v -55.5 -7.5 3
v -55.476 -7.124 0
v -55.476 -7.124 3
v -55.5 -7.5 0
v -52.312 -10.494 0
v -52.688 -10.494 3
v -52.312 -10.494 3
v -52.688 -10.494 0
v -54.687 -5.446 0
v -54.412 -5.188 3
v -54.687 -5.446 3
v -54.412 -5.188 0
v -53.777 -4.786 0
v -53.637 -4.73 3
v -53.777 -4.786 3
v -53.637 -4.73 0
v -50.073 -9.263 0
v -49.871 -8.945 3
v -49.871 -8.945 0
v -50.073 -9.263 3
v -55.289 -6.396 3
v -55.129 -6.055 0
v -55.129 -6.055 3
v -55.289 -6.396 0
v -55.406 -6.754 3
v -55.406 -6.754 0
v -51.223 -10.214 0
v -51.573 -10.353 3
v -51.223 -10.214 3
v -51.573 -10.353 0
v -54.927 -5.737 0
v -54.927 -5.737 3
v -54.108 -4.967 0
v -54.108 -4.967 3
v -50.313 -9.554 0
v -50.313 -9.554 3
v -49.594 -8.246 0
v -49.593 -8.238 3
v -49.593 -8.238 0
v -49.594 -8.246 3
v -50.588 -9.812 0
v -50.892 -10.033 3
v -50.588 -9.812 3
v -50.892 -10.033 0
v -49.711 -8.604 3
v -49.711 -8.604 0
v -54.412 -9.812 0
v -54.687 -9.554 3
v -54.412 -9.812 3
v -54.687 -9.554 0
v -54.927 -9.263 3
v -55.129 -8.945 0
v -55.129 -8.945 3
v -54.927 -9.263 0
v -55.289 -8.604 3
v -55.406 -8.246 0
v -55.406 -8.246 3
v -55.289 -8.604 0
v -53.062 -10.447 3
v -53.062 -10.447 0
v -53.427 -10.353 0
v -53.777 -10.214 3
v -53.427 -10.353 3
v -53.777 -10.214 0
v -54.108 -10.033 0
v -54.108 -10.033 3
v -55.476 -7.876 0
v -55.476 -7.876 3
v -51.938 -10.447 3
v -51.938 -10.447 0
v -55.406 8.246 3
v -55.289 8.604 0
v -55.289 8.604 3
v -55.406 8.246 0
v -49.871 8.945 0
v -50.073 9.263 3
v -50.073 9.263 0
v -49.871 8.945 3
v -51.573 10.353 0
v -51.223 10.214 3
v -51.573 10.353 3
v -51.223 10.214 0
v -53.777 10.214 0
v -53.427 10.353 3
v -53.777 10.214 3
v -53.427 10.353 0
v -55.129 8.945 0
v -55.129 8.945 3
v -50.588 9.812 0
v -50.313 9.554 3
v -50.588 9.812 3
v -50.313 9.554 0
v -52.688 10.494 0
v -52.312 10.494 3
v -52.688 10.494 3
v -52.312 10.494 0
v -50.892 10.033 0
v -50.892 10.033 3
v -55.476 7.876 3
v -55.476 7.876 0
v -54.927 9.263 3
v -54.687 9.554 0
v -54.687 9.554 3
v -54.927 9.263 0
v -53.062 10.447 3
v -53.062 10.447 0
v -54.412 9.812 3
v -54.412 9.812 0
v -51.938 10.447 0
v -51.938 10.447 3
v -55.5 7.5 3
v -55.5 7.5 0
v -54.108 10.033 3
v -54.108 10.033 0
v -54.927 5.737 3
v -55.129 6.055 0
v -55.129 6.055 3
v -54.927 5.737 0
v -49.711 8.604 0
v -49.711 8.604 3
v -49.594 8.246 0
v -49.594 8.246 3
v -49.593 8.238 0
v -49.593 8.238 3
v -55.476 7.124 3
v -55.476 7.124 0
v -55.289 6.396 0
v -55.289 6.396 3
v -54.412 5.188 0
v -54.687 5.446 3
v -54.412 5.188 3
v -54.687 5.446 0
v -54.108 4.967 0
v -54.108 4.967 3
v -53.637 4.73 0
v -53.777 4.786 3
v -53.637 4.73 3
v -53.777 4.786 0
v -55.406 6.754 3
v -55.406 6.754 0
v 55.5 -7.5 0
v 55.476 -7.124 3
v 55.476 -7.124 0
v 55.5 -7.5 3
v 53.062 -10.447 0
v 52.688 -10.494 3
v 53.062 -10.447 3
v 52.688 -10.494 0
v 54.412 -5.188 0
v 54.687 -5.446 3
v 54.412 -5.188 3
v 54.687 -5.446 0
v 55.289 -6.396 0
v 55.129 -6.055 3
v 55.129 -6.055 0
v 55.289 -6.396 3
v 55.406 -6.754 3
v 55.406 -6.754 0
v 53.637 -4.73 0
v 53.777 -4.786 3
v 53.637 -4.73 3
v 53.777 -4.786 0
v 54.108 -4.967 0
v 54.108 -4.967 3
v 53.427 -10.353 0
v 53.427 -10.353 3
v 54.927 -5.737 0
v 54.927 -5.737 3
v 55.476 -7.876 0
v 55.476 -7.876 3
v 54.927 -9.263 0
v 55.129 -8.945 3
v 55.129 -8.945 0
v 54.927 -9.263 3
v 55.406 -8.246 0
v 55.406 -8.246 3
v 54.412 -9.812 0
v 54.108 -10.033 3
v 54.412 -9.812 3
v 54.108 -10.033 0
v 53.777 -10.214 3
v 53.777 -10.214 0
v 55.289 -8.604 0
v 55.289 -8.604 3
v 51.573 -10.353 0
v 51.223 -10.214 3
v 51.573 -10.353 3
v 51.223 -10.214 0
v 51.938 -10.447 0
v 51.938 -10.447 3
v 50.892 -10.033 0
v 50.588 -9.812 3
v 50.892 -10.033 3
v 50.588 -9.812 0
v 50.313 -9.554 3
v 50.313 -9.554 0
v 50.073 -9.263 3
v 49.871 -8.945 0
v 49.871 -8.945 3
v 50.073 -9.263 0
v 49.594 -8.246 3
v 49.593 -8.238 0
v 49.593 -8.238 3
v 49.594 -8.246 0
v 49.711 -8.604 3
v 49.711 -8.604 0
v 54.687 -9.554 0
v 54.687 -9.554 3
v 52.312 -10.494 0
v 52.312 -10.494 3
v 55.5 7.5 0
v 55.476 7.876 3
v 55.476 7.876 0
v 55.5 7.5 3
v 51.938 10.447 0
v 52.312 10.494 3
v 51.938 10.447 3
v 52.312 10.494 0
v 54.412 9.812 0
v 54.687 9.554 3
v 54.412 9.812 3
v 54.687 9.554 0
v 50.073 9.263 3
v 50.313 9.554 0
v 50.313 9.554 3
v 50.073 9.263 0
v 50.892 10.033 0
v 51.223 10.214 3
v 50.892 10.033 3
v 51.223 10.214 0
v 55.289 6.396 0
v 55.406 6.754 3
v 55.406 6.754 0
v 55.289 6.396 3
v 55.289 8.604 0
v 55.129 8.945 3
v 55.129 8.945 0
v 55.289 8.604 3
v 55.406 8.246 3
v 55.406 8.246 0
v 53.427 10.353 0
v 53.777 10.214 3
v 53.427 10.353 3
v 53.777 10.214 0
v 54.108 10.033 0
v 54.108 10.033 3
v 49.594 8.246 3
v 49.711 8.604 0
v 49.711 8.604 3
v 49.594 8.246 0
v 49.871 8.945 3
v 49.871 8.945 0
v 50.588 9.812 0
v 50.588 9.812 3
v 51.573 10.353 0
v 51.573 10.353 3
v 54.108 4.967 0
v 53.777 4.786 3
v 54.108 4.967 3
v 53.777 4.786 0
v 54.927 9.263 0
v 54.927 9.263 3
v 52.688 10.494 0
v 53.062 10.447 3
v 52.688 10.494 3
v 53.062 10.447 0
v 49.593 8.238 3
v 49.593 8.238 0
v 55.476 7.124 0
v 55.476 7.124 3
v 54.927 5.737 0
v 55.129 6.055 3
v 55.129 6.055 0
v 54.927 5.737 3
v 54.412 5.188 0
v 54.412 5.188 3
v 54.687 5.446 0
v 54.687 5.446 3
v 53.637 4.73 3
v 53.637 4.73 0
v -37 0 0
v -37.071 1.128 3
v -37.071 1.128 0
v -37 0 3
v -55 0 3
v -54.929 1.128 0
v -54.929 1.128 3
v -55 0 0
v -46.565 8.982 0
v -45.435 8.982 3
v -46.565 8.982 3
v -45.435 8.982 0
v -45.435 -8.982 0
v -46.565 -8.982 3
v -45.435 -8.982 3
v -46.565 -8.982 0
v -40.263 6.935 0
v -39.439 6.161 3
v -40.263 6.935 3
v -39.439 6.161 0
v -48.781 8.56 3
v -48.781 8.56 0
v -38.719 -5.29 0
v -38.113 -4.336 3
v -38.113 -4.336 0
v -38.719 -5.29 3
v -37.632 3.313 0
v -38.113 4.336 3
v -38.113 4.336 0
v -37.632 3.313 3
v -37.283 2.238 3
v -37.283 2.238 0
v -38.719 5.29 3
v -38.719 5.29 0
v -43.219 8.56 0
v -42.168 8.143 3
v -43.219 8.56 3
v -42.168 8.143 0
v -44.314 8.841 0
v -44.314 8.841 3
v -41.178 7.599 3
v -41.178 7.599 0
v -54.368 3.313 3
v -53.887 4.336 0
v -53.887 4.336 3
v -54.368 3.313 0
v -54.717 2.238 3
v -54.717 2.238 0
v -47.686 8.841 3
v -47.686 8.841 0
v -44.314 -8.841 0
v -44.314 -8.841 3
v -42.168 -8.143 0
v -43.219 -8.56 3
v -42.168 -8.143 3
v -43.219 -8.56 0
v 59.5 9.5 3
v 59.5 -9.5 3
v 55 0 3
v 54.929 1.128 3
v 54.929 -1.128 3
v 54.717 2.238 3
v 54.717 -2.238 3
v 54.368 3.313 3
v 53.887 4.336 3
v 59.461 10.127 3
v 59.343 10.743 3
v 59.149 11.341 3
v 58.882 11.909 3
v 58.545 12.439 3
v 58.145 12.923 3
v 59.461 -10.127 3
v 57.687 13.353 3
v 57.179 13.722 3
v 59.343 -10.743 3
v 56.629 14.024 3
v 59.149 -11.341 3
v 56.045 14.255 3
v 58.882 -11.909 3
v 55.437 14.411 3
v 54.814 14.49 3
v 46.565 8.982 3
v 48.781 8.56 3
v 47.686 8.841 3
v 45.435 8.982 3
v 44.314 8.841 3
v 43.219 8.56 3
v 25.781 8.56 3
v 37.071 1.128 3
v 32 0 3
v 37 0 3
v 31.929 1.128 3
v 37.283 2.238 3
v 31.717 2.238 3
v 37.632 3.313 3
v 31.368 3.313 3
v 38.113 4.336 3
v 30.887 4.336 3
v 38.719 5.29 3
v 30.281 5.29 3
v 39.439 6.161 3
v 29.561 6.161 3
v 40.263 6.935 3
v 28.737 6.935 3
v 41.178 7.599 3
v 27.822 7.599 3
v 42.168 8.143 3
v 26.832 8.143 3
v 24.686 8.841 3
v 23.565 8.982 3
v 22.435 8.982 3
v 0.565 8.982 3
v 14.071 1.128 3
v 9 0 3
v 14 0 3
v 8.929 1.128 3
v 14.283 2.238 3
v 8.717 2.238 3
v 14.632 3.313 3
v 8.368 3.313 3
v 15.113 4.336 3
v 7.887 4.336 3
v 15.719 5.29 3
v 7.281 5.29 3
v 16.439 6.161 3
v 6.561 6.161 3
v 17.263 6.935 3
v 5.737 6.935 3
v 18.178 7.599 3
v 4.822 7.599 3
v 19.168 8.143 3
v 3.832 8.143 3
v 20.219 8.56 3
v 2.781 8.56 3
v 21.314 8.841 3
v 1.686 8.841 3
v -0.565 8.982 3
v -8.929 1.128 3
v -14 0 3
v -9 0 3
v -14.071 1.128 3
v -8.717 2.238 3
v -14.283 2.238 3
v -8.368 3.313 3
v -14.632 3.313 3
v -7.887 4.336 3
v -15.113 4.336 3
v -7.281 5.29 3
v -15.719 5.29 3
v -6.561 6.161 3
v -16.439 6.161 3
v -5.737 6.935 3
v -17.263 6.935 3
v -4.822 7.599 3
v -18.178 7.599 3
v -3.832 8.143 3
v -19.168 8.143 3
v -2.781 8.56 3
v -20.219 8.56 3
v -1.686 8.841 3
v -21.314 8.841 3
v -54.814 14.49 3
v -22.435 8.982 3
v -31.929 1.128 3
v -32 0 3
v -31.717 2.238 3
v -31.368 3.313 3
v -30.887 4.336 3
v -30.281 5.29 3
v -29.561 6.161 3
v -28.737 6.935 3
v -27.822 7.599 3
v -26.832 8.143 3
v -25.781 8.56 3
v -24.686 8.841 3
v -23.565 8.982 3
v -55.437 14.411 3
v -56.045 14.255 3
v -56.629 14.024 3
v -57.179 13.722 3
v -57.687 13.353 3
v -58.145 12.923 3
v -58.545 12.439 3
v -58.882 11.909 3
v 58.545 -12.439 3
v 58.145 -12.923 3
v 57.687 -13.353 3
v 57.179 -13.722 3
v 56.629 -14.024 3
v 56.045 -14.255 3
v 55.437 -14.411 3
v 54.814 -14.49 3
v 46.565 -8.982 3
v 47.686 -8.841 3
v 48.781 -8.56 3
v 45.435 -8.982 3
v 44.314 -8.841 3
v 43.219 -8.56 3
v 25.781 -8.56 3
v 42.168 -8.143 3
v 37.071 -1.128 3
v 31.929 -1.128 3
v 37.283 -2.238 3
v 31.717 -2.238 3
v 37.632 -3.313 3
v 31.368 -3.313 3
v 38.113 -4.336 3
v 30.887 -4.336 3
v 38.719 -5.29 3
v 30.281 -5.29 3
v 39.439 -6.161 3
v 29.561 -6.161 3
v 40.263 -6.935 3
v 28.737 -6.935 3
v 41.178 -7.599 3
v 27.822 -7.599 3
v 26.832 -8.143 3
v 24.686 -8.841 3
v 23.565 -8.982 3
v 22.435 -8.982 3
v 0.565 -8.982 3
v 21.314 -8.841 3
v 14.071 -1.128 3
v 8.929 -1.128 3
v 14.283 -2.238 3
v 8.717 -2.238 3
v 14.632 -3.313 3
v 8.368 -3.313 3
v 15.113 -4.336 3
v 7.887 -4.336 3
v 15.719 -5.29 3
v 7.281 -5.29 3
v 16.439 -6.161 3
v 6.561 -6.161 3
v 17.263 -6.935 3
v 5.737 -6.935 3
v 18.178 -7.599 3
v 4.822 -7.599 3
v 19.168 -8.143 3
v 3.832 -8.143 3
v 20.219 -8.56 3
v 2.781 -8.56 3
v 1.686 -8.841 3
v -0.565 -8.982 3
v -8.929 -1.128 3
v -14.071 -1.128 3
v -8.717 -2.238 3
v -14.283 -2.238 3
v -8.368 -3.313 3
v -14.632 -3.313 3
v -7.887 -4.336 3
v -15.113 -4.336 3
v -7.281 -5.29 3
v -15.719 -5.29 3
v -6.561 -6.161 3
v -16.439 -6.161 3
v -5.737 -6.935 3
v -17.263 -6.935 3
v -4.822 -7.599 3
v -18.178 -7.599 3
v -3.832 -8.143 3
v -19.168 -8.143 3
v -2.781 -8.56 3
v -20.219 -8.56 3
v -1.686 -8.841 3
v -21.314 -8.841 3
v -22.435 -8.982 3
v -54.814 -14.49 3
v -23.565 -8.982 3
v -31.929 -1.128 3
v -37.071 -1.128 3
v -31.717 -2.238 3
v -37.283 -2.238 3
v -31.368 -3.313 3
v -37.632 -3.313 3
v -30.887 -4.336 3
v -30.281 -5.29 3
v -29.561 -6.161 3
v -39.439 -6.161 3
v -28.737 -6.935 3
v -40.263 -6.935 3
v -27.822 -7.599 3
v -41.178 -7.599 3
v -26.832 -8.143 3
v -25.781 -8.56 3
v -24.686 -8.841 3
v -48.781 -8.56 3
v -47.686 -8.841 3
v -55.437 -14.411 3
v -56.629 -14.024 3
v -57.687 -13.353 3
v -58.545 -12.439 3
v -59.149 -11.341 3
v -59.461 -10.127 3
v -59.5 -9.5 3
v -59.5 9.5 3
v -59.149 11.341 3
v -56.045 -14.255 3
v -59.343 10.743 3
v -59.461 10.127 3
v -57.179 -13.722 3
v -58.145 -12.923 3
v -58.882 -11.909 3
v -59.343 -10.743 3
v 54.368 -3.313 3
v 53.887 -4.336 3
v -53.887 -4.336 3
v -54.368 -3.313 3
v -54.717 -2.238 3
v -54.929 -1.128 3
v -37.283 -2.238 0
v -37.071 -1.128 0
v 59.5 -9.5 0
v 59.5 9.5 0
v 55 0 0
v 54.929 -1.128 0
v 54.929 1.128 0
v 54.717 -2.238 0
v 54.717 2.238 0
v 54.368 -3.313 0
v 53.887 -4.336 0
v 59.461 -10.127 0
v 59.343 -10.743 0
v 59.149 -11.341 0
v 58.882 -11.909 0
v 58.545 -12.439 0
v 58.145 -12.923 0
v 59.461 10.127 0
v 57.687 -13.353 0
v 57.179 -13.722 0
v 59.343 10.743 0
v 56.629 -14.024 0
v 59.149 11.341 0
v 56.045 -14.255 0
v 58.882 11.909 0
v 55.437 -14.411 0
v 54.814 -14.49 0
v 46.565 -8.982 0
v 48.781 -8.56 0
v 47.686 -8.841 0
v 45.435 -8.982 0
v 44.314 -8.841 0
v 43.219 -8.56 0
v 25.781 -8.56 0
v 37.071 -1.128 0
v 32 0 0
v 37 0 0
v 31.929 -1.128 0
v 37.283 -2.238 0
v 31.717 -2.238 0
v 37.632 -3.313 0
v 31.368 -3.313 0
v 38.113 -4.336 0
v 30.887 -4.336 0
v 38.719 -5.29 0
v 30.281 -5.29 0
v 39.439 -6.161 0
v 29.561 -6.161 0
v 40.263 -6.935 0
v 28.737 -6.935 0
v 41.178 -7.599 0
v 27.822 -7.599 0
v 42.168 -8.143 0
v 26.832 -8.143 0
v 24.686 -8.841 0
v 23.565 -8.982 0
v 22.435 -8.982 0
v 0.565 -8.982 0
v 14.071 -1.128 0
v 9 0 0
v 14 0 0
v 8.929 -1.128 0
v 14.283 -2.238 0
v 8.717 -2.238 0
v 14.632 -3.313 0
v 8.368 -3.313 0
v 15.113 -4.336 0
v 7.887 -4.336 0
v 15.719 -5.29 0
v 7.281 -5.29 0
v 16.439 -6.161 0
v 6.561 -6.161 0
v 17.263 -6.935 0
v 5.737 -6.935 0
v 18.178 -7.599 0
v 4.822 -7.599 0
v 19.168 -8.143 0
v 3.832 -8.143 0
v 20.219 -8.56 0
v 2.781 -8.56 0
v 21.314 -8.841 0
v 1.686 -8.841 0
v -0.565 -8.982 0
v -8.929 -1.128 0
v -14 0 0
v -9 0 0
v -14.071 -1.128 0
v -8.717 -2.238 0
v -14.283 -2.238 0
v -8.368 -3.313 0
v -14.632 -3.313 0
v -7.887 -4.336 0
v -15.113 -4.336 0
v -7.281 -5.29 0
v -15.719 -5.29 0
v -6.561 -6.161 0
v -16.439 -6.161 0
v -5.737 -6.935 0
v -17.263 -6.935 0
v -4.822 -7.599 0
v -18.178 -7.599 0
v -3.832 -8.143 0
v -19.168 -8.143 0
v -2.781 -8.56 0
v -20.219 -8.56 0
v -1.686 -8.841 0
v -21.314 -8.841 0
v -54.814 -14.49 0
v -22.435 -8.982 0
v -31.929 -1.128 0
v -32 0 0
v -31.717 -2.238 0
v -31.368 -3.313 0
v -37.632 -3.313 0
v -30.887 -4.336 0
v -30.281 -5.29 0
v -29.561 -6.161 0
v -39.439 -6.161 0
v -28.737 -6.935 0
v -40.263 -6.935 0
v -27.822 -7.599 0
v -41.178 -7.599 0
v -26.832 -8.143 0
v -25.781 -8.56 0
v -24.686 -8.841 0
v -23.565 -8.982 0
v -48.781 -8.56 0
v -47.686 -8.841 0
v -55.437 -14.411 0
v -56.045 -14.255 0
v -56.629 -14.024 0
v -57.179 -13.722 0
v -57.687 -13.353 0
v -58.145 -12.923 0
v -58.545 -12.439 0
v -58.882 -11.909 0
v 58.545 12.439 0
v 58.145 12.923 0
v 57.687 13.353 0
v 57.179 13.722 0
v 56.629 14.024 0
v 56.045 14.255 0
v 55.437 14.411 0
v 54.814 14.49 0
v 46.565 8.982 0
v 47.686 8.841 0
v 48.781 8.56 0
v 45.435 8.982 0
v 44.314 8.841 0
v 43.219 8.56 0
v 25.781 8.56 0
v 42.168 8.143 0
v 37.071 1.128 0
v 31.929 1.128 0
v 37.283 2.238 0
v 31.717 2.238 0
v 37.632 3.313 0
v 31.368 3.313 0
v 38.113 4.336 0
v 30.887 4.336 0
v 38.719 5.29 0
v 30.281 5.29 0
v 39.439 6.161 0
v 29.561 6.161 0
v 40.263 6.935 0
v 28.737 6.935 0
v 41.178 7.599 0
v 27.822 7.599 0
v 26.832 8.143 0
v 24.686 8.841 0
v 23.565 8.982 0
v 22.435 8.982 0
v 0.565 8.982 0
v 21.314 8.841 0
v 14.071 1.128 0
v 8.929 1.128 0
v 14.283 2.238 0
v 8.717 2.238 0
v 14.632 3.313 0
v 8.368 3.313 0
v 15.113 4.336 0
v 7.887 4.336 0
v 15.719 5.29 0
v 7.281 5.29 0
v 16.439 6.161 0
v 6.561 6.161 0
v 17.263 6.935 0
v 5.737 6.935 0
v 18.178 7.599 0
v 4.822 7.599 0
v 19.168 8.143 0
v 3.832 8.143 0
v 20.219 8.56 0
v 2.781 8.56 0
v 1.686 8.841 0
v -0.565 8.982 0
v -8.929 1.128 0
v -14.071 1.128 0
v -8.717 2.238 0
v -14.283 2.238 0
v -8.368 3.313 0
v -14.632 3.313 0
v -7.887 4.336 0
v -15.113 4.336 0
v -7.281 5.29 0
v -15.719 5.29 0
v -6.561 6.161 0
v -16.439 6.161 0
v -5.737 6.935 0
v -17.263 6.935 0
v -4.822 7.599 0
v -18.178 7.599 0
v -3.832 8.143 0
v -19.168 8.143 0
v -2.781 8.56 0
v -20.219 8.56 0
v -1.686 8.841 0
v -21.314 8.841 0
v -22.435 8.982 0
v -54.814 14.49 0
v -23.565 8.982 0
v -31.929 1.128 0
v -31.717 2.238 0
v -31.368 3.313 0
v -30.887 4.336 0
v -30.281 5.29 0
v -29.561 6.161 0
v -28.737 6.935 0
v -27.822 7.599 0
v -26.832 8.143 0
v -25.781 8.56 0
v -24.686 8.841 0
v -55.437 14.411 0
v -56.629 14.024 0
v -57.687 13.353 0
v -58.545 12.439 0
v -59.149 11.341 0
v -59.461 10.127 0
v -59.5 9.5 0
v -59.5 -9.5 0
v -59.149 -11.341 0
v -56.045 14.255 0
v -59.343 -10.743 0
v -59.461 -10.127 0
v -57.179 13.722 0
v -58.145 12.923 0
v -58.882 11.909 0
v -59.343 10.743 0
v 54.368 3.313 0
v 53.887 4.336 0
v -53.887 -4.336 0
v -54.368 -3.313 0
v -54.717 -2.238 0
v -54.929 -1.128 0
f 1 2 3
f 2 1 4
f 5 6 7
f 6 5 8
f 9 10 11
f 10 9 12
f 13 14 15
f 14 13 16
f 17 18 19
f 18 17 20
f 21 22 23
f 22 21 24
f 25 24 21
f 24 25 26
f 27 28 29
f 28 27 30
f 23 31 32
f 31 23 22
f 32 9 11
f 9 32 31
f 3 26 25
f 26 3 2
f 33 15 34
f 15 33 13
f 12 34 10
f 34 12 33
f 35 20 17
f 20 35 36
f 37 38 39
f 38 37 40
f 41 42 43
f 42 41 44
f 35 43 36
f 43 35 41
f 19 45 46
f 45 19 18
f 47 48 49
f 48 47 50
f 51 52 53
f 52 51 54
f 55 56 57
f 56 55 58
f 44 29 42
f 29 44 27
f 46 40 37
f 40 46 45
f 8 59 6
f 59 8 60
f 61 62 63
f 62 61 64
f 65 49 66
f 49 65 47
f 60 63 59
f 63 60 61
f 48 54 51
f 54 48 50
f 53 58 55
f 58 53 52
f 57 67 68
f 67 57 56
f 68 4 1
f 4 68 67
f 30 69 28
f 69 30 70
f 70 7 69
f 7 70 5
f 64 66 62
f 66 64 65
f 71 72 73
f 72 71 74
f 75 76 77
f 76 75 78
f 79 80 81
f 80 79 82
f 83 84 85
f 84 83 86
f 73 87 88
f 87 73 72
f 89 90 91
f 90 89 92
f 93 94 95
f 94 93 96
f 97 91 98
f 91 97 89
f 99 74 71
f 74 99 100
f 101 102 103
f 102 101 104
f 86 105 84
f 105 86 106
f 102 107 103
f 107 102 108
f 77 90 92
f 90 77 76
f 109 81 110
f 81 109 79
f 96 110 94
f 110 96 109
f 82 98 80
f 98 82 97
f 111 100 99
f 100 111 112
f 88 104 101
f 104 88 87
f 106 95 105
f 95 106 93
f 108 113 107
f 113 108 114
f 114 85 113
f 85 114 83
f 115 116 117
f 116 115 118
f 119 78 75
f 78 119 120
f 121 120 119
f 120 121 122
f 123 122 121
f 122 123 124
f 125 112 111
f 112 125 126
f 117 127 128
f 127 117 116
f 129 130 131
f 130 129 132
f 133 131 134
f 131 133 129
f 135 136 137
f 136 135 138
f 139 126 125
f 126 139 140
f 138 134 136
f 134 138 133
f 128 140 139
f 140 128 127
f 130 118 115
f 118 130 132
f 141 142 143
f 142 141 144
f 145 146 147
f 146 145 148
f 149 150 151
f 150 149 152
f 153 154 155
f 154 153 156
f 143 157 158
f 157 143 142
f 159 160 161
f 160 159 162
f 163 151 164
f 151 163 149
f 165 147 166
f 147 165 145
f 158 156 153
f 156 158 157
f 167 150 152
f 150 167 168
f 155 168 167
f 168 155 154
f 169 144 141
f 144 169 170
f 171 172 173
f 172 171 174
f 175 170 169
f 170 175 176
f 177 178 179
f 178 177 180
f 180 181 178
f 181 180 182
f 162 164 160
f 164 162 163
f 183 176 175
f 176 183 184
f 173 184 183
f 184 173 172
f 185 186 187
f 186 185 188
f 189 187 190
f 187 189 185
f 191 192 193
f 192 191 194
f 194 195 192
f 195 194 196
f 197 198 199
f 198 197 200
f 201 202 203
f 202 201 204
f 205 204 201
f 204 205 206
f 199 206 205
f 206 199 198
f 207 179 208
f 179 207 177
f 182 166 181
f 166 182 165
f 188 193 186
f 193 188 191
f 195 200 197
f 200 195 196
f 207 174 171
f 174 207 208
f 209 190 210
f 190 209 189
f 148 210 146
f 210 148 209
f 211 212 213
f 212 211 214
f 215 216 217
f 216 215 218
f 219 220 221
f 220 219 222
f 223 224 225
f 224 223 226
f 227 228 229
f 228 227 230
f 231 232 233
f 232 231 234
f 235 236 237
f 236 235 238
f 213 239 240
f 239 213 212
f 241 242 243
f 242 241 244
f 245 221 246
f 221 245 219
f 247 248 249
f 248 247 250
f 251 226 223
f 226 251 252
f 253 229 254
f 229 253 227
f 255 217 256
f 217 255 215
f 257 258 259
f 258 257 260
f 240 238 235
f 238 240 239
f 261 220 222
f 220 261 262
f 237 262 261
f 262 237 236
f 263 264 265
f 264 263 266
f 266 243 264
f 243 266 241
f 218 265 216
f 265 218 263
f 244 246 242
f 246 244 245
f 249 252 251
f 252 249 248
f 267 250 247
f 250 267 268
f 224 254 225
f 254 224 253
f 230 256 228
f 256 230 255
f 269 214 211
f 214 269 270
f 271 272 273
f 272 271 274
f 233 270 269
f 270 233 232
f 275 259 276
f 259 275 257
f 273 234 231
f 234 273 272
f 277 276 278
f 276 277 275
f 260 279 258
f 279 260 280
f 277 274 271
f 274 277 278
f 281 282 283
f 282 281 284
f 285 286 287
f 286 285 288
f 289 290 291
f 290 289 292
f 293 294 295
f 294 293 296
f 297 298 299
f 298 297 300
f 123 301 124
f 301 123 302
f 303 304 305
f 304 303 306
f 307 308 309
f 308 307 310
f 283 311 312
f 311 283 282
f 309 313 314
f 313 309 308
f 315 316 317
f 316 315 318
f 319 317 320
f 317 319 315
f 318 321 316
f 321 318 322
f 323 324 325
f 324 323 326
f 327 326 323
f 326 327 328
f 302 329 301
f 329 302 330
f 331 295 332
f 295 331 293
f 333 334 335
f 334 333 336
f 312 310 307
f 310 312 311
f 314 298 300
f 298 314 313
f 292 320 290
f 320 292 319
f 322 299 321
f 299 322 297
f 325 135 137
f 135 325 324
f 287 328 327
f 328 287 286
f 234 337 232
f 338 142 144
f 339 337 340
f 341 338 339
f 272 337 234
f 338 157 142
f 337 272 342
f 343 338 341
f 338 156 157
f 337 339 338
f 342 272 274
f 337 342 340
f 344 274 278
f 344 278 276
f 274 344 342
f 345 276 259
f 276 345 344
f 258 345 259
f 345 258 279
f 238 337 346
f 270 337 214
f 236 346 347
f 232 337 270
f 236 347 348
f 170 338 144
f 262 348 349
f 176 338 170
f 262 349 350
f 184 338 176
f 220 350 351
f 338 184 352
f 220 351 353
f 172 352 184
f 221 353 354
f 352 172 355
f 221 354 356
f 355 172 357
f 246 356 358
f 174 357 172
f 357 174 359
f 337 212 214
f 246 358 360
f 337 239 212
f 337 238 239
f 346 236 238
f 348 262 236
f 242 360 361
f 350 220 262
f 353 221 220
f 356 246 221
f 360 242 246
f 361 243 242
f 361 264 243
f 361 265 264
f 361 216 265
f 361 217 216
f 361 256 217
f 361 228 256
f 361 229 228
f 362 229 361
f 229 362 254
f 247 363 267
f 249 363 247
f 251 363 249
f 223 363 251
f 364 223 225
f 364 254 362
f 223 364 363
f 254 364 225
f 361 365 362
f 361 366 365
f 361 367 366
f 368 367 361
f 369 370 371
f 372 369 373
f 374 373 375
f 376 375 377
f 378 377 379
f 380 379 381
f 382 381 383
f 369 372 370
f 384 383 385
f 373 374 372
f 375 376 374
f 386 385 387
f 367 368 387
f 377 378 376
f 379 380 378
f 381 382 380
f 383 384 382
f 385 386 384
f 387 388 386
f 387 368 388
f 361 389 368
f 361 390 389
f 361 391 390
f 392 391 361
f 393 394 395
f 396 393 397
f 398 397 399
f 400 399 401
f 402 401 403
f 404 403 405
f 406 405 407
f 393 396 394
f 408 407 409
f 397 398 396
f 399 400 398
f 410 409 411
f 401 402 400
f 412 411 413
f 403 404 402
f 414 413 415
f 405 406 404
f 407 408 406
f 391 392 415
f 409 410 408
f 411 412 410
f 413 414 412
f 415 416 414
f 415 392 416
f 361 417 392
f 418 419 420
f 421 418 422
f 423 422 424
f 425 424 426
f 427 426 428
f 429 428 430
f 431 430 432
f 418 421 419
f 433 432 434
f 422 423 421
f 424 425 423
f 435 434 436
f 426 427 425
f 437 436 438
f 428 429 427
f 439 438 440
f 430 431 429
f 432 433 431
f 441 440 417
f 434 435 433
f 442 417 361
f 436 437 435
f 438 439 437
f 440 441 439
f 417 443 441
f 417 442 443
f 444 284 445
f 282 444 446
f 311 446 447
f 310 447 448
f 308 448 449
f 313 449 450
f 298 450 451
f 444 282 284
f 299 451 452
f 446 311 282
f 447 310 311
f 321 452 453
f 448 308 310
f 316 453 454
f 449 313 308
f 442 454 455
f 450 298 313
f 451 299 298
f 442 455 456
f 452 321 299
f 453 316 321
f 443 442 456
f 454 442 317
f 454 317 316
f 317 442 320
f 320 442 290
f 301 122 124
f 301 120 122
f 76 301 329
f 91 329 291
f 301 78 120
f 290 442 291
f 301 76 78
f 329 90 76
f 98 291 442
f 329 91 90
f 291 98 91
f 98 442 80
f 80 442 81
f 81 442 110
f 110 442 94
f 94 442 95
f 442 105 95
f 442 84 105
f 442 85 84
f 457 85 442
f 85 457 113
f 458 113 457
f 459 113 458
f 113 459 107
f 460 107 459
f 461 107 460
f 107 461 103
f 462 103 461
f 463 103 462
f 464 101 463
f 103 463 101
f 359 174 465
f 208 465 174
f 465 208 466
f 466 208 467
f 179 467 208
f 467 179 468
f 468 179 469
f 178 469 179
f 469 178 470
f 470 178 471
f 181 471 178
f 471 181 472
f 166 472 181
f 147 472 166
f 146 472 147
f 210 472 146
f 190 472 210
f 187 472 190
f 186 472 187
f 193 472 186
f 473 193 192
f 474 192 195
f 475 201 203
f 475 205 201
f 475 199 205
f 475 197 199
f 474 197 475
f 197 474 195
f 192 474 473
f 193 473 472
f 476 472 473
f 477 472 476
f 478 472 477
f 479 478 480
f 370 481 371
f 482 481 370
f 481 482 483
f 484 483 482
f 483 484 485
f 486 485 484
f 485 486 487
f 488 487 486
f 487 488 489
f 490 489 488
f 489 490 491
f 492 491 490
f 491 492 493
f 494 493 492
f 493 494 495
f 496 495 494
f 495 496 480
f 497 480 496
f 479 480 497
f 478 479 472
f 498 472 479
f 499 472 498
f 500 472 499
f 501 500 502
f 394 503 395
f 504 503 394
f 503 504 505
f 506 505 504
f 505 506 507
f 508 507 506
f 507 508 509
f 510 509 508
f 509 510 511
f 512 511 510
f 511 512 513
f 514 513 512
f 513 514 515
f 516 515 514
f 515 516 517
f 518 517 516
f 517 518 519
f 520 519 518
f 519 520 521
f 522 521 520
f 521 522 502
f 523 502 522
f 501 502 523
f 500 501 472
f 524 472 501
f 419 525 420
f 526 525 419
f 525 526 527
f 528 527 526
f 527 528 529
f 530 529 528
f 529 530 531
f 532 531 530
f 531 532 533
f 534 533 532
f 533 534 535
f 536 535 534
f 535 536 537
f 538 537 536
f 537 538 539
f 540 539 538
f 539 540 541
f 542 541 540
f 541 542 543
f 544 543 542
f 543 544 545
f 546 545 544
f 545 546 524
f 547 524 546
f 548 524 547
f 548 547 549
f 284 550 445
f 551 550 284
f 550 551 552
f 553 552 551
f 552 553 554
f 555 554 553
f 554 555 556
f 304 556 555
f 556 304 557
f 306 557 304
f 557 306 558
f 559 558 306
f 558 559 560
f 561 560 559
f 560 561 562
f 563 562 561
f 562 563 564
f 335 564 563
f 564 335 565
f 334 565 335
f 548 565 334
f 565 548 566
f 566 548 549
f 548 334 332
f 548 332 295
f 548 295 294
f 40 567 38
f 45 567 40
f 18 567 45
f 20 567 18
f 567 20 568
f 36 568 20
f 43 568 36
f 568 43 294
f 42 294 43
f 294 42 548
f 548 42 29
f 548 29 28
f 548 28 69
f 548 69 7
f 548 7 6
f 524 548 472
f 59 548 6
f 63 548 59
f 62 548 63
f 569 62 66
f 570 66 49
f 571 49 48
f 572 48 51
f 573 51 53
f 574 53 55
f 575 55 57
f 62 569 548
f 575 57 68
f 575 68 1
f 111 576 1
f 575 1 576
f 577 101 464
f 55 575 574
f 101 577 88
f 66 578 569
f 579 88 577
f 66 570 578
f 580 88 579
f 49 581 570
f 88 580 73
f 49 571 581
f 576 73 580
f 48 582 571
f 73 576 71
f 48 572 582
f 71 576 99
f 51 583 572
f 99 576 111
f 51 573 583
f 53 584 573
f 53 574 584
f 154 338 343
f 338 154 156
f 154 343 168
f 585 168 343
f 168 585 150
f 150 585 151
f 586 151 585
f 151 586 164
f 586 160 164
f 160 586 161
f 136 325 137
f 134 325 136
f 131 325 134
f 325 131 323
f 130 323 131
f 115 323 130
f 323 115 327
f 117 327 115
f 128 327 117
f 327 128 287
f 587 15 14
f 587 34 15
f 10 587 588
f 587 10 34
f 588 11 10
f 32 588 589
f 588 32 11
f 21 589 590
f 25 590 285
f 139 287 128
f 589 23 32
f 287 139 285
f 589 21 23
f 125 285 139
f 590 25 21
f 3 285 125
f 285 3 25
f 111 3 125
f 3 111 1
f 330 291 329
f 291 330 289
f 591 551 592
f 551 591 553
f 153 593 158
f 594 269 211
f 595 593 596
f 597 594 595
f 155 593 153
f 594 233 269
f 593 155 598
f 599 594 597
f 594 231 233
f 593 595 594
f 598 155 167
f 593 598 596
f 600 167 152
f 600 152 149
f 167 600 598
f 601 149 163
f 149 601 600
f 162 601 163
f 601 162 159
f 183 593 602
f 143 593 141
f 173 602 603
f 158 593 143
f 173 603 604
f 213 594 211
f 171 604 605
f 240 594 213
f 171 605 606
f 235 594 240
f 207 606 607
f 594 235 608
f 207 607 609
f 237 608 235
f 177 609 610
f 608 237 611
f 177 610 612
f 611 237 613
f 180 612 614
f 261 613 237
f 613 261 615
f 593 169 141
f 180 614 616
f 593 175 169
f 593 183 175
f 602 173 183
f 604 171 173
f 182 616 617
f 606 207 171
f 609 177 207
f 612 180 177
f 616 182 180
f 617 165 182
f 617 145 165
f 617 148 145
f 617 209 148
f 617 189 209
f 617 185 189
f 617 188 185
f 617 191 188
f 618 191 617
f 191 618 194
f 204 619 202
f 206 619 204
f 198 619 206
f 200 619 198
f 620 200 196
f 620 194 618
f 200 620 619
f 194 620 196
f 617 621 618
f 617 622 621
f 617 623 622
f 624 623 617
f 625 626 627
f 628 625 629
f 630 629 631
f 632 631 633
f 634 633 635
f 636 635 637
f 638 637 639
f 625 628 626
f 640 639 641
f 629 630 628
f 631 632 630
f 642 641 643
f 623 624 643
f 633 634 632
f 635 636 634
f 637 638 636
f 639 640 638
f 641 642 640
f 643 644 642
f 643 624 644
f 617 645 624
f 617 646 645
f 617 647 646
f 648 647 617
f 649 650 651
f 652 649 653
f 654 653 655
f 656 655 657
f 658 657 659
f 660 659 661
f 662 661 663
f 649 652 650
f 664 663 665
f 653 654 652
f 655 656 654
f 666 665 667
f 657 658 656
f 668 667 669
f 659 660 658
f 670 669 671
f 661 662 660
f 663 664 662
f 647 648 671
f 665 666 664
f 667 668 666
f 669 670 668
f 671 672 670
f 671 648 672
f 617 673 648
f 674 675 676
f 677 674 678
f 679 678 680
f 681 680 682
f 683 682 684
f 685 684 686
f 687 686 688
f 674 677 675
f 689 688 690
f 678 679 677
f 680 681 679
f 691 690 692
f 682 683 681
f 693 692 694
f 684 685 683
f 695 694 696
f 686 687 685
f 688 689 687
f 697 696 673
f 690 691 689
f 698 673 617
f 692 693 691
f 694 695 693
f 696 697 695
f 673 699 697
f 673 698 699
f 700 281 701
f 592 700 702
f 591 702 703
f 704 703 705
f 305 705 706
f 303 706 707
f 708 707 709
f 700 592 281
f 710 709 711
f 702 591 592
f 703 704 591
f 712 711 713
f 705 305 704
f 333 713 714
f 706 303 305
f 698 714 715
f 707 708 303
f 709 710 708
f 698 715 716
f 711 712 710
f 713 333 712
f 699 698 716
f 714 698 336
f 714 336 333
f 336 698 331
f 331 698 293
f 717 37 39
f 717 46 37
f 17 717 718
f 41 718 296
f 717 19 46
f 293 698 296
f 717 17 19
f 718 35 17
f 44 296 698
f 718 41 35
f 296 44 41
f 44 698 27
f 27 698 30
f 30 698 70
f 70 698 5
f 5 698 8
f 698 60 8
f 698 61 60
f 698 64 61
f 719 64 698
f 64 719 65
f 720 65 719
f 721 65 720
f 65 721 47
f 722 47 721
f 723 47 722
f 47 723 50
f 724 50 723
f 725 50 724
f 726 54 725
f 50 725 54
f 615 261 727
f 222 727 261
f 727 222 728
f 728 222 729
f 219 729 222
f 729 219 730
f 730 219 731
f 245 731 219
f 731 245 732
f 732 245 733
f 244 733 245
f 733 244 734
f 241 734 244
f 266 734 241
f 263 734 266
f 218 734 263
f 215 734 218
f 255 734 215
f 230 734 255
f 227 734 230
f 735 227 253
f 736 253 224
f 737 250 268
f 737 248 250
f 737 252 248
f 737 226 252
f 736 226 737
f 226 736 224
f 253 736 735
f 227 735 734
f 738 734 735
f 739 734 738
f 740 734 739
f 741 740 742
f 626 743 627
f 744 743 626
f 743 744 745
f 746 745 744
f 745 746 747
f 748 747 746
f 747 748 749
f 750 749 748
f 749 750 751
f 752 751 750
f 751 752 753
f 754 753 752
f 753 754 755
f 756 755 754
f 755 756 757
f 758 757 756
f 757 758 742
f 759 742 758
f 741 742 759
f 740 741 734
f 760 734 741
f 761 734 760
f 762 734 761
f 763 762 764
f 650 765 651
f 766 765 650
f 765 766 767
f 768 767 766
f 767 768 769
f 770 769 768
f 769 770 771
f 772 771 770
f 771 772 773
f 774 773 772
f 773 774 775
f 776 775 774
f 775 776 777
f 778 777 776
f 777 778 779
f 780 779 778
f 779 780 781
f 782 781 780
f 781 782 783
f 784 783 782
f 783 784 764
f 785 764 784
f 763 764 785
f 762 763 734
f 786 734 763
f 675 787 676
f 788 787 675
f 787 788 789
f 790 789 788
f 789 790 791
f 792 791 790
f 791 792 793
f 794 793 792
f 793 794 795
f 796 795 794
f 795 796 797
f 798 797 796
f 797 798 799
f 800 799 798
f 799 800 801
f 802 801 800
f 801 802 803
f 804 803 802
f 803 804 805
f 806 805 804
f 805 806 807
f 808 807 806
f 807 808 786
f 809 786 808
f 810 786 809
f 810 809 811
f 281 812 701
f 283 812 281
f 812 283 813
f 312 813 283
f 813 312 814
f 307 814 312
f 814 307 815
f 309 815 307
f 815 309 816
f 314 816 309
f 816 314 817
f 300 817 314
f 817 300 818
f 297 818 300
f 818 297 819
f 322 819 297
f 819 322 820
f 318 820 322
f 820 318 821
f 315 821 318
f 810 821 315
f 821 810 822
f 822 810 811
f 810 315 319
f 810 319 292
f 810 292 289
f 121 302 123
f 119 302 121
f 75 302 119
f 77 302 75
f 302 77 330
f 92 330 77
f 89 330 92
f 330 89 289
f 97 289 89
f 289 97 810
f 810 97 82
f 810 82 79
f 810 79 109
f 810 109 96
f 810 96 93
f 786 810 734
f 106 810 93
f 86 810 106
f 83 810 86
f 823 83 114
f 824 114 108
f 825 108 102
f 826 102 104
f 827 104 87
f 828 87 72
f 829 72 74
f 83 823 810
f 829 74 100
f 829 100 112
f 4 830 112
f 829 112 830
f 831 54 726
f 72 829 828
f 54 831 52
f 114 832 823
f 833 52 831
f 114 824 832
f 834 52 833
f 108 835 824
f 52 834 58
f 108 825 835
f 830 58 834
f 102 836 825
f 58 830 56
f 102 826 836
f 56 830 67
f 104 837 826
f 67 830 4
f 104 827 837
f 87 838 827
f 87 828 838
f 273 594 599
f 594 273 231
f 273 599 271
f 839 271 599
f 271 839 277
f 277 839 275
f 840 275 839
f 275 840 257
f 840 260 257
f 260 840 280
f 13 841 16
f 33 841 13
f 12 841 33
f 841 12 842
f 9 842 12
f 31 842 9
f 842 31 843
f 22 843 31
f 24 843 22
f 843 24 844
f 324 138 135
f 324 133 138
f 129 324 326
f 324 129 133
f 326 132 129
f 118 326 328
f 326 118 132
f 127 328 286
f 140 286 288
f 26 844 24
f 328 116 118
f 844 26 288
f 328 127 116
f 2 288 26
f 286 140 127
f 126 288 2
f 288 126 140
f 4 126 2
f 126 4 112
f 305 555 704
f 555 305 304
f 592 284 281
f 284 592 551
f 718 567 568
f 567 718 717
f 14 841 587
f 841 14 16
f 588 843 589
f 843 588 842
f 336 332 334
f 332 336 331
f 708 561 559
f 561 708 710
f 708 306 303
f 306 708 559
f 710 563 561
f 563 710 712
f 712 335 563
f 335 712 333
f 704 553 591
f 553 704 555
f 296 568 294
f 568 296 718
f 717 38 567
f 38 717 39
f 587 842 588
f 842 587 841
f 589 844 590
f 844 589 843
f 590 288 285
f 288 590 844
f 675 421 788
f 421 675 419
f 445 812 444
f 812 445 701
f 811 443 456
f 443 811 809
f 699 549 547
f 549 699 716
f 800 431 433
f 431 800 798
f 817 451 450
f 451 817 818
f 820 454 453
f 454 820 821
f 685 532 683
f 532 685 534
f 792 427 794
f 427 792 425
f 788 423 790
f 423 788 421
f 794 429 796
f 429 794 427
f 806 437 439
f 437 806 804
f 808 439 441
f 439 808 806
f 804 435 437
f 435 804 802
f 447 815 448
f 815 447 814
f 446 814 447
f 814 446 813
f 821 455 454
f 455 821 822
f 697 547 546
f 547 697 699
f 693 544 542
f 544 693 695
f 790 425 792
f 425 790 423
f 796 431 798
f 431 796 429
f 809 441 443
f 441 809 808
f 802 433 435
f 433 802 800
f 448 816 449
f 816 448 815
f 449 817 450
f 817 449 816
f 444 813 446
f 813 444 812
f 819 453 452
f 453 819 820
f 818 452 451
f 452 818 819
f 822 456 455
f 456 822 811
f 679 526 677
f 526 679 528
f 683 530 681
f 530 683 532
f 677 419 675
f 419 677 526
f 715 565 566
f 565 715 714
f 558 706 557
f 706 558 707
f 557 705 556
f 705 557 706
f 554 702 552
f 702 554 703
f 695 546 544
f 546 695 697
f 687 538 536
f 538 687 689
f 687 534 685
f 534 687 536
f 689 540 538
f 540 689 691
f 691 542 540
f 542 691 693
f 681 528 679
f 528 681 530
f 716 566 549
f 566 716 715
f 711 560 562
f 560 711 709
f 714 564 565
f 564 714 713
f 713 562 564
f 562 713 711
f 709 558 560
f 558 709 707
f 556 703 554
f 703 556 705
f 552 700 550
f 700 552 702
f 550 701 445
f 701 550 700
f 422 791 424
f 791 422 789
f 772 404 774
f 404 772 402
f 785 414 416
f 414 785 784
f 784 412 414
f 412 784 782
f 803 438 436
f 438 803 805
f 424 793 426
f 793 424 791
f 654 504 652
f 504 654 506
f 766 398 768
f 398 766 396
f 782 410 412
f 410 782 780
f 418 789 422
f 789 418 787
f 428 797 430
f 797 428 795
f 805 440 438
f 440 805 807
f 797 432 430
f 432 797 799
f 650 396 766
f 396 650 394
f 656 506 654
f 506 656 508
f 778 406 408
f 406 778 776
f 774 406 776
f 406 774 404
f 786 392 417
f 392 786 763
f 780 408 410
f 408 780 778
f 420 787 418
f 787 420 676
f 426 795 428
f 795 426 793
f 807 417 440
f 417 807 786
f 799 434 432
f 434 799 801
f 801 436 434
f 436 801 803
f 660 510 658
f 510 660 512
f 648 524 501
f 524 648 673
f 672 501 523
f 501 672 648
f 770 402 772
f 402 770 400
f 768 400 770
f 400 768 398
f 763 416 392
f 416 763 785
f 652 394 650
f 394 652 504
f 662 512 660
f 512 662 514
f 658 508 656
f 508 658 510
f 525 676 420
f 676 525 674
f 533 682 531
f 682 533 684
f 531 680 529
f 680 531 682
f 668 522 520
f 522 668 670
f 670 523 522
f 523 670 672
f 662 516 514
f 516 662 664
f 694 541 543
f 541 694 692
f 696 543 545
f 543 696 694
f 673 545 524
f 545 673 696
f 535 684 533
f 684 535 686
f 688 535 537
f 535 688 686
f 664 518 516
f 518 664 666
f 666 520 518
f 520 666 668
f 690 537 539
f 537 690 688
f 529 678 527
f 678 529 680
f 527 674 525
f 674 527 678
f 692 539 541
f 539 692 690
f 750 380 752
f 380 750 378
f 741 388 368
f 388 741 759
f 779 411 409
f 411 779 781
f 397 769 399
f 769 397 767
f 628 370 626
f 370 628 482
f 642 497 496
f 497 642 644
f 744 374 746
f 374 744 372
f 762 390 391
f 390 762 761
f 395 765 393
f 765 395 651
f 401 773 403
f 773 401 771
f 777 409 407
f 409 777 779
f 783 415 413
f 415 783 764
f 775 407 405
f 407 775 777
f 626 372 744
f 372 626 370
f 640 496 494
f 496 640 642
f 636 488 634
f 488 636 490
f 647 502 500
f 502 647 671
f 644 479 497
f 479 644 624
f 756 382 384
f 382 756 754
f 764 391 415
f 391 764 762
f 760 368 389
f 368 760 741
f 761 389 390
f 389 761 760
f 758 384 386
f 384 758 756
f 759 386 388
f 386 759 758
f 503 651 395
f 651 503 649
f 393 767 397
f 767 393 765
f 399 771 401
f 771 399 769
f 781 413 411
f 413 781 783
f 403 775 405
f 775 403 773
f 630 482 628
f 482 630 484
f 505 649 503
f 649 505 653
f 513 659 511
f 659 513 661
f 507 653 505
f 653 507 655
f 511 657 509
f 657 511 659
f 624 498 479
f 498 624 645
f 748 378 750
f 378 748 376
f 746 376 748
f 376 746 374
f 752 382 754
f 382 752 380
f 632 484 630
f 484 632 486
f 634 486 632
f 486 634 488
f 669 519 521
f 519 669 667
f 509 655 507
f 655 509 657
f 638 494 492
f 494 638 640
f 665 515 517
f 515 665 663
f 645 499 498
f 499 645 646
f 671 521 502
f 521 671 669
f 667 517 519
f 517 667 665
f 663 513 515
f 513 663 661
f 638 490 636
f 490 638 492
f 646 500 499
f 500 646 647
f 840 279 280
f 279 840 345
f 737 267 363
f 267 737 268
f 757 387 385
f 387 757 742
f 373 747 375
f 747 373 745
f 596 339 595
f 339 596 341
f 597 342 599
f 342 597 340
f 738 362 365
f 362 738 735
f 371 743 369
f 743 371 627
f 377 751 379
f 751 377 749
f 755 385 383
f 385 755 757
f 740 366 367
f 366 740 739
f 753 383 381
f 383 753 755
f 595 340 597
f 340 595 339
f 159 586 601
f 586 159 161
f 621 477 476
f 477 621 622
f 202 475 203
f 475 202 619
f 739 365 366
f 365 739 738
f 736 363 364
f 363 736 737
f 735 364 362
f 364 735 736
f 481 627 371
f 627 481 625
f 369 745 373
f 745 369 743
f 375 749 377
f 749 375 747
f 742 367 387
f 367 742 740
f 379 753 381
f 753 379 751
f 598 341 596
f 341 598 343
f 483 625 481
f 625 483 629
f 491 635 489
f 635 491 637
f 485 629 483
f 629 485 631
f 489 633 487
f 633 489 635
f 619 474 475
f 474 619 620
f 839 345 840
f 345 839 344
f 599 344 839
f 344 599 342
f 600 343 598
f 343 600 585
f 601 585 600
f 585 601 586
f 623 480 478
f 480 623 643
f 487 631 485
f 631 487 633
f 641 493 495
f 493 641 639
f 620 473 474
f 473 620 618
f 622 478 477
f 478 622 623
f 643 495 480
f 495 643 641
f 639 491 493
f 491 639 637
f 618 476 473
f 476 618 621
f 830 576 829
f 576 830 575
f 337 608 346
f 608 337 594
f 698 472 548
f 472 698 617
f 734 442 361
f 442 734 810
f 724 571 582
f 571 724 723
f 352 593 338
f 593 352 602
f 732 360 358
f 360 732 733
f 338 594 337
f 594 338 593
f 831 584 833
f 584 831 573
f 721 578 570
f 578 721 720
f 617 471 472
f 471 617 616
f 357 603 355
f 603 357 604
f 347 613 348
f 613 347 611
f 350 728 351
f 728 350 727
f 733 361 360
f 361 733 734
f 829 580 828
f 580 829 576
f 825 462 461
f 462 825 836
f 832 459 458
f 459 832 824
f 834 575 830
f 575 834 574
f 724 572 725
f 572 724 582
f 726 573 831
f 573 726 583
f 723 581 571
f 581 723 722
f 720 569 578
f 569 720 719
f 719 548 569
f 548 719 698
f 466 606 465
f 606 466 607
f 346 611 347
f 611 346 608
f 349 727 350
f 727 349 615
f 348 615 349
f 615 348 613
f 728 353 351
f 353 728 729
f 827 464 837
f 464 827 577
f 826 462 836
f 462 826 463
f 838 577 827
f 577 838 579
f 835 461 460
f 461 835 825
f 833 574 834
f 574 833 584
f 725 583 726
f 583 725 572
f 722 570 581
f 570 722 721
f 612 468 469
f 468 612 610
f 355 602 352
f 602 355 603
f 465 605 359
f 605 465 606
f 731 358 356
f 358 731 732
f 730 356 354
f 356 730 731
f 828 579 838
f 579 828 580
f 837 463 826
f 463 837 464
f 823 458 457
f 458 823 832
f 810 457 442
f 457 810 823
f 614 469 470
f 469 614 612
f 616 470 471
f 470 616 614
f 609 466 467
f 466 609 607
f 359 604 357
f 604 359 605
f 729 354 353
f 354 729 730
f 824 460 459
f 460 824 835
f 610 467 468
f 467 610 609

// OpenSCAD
$fn = 50;


difference() {
	union() {
		hull() {
			translate(v = [-54.5000000000, 9.5000000000, 0]) {
				cylinder(h = 3, r = 5);
			}
			translate(v = [54.5000000000, 9.5000000000, 0]) {
				cylinder(h = 3, r = 5);
			}
			translate(v = [-54.5000000000, -9.5000000000, 0]) {
				cylinder(h = 3, r = 5);
			}
			translate(v = [54.5000000000, -9.5000000000, 0]) {
				cylinder(h = 3, r = 5);
			}
		}
	}
	union() {
		#translate(v = [-52.5000000000, -7.5000000000, -100.0000000000]) {
			cylinder(h = 200, r = 3.0000000000);
		}
		#translate(v = [-52.5000000000, 7.5000000000, -100.0000000000]) {
			cylinder(h = 200, r = 3.0000000000);
		}
		#translate(v = [52.5000000000, -7.5000000000, -100.0000000000]) {
			cylinder(h = 200, r = 3.0000000000);
		}
		#translate(v = [52.5000000000, 7.5000000000, -100.0000000000]) {
			cylinder(h = 200, r = 3.0000000000);
		}
		#translate(v = [-46.0000000000, 0, 0]) {
			cylinder(h = 3, r = 9.0000000000);
		}
		#translate(v = [-23.0000000000, 0, 0]) {
			cylinder(h = 3, r = 9.0000000000);
		}
		#cylinder(h = 3, r = 9.0000000000);
		#translate(v = [23.0000000000, 0, 0]) {
			cylinder(h = 3, r = 9.0000000000);
		}
		#translate(v = [46.0000000000, 0, 0]) {
			cylinder(h = 3, r = 9.0000000000);
		}
	}
}
